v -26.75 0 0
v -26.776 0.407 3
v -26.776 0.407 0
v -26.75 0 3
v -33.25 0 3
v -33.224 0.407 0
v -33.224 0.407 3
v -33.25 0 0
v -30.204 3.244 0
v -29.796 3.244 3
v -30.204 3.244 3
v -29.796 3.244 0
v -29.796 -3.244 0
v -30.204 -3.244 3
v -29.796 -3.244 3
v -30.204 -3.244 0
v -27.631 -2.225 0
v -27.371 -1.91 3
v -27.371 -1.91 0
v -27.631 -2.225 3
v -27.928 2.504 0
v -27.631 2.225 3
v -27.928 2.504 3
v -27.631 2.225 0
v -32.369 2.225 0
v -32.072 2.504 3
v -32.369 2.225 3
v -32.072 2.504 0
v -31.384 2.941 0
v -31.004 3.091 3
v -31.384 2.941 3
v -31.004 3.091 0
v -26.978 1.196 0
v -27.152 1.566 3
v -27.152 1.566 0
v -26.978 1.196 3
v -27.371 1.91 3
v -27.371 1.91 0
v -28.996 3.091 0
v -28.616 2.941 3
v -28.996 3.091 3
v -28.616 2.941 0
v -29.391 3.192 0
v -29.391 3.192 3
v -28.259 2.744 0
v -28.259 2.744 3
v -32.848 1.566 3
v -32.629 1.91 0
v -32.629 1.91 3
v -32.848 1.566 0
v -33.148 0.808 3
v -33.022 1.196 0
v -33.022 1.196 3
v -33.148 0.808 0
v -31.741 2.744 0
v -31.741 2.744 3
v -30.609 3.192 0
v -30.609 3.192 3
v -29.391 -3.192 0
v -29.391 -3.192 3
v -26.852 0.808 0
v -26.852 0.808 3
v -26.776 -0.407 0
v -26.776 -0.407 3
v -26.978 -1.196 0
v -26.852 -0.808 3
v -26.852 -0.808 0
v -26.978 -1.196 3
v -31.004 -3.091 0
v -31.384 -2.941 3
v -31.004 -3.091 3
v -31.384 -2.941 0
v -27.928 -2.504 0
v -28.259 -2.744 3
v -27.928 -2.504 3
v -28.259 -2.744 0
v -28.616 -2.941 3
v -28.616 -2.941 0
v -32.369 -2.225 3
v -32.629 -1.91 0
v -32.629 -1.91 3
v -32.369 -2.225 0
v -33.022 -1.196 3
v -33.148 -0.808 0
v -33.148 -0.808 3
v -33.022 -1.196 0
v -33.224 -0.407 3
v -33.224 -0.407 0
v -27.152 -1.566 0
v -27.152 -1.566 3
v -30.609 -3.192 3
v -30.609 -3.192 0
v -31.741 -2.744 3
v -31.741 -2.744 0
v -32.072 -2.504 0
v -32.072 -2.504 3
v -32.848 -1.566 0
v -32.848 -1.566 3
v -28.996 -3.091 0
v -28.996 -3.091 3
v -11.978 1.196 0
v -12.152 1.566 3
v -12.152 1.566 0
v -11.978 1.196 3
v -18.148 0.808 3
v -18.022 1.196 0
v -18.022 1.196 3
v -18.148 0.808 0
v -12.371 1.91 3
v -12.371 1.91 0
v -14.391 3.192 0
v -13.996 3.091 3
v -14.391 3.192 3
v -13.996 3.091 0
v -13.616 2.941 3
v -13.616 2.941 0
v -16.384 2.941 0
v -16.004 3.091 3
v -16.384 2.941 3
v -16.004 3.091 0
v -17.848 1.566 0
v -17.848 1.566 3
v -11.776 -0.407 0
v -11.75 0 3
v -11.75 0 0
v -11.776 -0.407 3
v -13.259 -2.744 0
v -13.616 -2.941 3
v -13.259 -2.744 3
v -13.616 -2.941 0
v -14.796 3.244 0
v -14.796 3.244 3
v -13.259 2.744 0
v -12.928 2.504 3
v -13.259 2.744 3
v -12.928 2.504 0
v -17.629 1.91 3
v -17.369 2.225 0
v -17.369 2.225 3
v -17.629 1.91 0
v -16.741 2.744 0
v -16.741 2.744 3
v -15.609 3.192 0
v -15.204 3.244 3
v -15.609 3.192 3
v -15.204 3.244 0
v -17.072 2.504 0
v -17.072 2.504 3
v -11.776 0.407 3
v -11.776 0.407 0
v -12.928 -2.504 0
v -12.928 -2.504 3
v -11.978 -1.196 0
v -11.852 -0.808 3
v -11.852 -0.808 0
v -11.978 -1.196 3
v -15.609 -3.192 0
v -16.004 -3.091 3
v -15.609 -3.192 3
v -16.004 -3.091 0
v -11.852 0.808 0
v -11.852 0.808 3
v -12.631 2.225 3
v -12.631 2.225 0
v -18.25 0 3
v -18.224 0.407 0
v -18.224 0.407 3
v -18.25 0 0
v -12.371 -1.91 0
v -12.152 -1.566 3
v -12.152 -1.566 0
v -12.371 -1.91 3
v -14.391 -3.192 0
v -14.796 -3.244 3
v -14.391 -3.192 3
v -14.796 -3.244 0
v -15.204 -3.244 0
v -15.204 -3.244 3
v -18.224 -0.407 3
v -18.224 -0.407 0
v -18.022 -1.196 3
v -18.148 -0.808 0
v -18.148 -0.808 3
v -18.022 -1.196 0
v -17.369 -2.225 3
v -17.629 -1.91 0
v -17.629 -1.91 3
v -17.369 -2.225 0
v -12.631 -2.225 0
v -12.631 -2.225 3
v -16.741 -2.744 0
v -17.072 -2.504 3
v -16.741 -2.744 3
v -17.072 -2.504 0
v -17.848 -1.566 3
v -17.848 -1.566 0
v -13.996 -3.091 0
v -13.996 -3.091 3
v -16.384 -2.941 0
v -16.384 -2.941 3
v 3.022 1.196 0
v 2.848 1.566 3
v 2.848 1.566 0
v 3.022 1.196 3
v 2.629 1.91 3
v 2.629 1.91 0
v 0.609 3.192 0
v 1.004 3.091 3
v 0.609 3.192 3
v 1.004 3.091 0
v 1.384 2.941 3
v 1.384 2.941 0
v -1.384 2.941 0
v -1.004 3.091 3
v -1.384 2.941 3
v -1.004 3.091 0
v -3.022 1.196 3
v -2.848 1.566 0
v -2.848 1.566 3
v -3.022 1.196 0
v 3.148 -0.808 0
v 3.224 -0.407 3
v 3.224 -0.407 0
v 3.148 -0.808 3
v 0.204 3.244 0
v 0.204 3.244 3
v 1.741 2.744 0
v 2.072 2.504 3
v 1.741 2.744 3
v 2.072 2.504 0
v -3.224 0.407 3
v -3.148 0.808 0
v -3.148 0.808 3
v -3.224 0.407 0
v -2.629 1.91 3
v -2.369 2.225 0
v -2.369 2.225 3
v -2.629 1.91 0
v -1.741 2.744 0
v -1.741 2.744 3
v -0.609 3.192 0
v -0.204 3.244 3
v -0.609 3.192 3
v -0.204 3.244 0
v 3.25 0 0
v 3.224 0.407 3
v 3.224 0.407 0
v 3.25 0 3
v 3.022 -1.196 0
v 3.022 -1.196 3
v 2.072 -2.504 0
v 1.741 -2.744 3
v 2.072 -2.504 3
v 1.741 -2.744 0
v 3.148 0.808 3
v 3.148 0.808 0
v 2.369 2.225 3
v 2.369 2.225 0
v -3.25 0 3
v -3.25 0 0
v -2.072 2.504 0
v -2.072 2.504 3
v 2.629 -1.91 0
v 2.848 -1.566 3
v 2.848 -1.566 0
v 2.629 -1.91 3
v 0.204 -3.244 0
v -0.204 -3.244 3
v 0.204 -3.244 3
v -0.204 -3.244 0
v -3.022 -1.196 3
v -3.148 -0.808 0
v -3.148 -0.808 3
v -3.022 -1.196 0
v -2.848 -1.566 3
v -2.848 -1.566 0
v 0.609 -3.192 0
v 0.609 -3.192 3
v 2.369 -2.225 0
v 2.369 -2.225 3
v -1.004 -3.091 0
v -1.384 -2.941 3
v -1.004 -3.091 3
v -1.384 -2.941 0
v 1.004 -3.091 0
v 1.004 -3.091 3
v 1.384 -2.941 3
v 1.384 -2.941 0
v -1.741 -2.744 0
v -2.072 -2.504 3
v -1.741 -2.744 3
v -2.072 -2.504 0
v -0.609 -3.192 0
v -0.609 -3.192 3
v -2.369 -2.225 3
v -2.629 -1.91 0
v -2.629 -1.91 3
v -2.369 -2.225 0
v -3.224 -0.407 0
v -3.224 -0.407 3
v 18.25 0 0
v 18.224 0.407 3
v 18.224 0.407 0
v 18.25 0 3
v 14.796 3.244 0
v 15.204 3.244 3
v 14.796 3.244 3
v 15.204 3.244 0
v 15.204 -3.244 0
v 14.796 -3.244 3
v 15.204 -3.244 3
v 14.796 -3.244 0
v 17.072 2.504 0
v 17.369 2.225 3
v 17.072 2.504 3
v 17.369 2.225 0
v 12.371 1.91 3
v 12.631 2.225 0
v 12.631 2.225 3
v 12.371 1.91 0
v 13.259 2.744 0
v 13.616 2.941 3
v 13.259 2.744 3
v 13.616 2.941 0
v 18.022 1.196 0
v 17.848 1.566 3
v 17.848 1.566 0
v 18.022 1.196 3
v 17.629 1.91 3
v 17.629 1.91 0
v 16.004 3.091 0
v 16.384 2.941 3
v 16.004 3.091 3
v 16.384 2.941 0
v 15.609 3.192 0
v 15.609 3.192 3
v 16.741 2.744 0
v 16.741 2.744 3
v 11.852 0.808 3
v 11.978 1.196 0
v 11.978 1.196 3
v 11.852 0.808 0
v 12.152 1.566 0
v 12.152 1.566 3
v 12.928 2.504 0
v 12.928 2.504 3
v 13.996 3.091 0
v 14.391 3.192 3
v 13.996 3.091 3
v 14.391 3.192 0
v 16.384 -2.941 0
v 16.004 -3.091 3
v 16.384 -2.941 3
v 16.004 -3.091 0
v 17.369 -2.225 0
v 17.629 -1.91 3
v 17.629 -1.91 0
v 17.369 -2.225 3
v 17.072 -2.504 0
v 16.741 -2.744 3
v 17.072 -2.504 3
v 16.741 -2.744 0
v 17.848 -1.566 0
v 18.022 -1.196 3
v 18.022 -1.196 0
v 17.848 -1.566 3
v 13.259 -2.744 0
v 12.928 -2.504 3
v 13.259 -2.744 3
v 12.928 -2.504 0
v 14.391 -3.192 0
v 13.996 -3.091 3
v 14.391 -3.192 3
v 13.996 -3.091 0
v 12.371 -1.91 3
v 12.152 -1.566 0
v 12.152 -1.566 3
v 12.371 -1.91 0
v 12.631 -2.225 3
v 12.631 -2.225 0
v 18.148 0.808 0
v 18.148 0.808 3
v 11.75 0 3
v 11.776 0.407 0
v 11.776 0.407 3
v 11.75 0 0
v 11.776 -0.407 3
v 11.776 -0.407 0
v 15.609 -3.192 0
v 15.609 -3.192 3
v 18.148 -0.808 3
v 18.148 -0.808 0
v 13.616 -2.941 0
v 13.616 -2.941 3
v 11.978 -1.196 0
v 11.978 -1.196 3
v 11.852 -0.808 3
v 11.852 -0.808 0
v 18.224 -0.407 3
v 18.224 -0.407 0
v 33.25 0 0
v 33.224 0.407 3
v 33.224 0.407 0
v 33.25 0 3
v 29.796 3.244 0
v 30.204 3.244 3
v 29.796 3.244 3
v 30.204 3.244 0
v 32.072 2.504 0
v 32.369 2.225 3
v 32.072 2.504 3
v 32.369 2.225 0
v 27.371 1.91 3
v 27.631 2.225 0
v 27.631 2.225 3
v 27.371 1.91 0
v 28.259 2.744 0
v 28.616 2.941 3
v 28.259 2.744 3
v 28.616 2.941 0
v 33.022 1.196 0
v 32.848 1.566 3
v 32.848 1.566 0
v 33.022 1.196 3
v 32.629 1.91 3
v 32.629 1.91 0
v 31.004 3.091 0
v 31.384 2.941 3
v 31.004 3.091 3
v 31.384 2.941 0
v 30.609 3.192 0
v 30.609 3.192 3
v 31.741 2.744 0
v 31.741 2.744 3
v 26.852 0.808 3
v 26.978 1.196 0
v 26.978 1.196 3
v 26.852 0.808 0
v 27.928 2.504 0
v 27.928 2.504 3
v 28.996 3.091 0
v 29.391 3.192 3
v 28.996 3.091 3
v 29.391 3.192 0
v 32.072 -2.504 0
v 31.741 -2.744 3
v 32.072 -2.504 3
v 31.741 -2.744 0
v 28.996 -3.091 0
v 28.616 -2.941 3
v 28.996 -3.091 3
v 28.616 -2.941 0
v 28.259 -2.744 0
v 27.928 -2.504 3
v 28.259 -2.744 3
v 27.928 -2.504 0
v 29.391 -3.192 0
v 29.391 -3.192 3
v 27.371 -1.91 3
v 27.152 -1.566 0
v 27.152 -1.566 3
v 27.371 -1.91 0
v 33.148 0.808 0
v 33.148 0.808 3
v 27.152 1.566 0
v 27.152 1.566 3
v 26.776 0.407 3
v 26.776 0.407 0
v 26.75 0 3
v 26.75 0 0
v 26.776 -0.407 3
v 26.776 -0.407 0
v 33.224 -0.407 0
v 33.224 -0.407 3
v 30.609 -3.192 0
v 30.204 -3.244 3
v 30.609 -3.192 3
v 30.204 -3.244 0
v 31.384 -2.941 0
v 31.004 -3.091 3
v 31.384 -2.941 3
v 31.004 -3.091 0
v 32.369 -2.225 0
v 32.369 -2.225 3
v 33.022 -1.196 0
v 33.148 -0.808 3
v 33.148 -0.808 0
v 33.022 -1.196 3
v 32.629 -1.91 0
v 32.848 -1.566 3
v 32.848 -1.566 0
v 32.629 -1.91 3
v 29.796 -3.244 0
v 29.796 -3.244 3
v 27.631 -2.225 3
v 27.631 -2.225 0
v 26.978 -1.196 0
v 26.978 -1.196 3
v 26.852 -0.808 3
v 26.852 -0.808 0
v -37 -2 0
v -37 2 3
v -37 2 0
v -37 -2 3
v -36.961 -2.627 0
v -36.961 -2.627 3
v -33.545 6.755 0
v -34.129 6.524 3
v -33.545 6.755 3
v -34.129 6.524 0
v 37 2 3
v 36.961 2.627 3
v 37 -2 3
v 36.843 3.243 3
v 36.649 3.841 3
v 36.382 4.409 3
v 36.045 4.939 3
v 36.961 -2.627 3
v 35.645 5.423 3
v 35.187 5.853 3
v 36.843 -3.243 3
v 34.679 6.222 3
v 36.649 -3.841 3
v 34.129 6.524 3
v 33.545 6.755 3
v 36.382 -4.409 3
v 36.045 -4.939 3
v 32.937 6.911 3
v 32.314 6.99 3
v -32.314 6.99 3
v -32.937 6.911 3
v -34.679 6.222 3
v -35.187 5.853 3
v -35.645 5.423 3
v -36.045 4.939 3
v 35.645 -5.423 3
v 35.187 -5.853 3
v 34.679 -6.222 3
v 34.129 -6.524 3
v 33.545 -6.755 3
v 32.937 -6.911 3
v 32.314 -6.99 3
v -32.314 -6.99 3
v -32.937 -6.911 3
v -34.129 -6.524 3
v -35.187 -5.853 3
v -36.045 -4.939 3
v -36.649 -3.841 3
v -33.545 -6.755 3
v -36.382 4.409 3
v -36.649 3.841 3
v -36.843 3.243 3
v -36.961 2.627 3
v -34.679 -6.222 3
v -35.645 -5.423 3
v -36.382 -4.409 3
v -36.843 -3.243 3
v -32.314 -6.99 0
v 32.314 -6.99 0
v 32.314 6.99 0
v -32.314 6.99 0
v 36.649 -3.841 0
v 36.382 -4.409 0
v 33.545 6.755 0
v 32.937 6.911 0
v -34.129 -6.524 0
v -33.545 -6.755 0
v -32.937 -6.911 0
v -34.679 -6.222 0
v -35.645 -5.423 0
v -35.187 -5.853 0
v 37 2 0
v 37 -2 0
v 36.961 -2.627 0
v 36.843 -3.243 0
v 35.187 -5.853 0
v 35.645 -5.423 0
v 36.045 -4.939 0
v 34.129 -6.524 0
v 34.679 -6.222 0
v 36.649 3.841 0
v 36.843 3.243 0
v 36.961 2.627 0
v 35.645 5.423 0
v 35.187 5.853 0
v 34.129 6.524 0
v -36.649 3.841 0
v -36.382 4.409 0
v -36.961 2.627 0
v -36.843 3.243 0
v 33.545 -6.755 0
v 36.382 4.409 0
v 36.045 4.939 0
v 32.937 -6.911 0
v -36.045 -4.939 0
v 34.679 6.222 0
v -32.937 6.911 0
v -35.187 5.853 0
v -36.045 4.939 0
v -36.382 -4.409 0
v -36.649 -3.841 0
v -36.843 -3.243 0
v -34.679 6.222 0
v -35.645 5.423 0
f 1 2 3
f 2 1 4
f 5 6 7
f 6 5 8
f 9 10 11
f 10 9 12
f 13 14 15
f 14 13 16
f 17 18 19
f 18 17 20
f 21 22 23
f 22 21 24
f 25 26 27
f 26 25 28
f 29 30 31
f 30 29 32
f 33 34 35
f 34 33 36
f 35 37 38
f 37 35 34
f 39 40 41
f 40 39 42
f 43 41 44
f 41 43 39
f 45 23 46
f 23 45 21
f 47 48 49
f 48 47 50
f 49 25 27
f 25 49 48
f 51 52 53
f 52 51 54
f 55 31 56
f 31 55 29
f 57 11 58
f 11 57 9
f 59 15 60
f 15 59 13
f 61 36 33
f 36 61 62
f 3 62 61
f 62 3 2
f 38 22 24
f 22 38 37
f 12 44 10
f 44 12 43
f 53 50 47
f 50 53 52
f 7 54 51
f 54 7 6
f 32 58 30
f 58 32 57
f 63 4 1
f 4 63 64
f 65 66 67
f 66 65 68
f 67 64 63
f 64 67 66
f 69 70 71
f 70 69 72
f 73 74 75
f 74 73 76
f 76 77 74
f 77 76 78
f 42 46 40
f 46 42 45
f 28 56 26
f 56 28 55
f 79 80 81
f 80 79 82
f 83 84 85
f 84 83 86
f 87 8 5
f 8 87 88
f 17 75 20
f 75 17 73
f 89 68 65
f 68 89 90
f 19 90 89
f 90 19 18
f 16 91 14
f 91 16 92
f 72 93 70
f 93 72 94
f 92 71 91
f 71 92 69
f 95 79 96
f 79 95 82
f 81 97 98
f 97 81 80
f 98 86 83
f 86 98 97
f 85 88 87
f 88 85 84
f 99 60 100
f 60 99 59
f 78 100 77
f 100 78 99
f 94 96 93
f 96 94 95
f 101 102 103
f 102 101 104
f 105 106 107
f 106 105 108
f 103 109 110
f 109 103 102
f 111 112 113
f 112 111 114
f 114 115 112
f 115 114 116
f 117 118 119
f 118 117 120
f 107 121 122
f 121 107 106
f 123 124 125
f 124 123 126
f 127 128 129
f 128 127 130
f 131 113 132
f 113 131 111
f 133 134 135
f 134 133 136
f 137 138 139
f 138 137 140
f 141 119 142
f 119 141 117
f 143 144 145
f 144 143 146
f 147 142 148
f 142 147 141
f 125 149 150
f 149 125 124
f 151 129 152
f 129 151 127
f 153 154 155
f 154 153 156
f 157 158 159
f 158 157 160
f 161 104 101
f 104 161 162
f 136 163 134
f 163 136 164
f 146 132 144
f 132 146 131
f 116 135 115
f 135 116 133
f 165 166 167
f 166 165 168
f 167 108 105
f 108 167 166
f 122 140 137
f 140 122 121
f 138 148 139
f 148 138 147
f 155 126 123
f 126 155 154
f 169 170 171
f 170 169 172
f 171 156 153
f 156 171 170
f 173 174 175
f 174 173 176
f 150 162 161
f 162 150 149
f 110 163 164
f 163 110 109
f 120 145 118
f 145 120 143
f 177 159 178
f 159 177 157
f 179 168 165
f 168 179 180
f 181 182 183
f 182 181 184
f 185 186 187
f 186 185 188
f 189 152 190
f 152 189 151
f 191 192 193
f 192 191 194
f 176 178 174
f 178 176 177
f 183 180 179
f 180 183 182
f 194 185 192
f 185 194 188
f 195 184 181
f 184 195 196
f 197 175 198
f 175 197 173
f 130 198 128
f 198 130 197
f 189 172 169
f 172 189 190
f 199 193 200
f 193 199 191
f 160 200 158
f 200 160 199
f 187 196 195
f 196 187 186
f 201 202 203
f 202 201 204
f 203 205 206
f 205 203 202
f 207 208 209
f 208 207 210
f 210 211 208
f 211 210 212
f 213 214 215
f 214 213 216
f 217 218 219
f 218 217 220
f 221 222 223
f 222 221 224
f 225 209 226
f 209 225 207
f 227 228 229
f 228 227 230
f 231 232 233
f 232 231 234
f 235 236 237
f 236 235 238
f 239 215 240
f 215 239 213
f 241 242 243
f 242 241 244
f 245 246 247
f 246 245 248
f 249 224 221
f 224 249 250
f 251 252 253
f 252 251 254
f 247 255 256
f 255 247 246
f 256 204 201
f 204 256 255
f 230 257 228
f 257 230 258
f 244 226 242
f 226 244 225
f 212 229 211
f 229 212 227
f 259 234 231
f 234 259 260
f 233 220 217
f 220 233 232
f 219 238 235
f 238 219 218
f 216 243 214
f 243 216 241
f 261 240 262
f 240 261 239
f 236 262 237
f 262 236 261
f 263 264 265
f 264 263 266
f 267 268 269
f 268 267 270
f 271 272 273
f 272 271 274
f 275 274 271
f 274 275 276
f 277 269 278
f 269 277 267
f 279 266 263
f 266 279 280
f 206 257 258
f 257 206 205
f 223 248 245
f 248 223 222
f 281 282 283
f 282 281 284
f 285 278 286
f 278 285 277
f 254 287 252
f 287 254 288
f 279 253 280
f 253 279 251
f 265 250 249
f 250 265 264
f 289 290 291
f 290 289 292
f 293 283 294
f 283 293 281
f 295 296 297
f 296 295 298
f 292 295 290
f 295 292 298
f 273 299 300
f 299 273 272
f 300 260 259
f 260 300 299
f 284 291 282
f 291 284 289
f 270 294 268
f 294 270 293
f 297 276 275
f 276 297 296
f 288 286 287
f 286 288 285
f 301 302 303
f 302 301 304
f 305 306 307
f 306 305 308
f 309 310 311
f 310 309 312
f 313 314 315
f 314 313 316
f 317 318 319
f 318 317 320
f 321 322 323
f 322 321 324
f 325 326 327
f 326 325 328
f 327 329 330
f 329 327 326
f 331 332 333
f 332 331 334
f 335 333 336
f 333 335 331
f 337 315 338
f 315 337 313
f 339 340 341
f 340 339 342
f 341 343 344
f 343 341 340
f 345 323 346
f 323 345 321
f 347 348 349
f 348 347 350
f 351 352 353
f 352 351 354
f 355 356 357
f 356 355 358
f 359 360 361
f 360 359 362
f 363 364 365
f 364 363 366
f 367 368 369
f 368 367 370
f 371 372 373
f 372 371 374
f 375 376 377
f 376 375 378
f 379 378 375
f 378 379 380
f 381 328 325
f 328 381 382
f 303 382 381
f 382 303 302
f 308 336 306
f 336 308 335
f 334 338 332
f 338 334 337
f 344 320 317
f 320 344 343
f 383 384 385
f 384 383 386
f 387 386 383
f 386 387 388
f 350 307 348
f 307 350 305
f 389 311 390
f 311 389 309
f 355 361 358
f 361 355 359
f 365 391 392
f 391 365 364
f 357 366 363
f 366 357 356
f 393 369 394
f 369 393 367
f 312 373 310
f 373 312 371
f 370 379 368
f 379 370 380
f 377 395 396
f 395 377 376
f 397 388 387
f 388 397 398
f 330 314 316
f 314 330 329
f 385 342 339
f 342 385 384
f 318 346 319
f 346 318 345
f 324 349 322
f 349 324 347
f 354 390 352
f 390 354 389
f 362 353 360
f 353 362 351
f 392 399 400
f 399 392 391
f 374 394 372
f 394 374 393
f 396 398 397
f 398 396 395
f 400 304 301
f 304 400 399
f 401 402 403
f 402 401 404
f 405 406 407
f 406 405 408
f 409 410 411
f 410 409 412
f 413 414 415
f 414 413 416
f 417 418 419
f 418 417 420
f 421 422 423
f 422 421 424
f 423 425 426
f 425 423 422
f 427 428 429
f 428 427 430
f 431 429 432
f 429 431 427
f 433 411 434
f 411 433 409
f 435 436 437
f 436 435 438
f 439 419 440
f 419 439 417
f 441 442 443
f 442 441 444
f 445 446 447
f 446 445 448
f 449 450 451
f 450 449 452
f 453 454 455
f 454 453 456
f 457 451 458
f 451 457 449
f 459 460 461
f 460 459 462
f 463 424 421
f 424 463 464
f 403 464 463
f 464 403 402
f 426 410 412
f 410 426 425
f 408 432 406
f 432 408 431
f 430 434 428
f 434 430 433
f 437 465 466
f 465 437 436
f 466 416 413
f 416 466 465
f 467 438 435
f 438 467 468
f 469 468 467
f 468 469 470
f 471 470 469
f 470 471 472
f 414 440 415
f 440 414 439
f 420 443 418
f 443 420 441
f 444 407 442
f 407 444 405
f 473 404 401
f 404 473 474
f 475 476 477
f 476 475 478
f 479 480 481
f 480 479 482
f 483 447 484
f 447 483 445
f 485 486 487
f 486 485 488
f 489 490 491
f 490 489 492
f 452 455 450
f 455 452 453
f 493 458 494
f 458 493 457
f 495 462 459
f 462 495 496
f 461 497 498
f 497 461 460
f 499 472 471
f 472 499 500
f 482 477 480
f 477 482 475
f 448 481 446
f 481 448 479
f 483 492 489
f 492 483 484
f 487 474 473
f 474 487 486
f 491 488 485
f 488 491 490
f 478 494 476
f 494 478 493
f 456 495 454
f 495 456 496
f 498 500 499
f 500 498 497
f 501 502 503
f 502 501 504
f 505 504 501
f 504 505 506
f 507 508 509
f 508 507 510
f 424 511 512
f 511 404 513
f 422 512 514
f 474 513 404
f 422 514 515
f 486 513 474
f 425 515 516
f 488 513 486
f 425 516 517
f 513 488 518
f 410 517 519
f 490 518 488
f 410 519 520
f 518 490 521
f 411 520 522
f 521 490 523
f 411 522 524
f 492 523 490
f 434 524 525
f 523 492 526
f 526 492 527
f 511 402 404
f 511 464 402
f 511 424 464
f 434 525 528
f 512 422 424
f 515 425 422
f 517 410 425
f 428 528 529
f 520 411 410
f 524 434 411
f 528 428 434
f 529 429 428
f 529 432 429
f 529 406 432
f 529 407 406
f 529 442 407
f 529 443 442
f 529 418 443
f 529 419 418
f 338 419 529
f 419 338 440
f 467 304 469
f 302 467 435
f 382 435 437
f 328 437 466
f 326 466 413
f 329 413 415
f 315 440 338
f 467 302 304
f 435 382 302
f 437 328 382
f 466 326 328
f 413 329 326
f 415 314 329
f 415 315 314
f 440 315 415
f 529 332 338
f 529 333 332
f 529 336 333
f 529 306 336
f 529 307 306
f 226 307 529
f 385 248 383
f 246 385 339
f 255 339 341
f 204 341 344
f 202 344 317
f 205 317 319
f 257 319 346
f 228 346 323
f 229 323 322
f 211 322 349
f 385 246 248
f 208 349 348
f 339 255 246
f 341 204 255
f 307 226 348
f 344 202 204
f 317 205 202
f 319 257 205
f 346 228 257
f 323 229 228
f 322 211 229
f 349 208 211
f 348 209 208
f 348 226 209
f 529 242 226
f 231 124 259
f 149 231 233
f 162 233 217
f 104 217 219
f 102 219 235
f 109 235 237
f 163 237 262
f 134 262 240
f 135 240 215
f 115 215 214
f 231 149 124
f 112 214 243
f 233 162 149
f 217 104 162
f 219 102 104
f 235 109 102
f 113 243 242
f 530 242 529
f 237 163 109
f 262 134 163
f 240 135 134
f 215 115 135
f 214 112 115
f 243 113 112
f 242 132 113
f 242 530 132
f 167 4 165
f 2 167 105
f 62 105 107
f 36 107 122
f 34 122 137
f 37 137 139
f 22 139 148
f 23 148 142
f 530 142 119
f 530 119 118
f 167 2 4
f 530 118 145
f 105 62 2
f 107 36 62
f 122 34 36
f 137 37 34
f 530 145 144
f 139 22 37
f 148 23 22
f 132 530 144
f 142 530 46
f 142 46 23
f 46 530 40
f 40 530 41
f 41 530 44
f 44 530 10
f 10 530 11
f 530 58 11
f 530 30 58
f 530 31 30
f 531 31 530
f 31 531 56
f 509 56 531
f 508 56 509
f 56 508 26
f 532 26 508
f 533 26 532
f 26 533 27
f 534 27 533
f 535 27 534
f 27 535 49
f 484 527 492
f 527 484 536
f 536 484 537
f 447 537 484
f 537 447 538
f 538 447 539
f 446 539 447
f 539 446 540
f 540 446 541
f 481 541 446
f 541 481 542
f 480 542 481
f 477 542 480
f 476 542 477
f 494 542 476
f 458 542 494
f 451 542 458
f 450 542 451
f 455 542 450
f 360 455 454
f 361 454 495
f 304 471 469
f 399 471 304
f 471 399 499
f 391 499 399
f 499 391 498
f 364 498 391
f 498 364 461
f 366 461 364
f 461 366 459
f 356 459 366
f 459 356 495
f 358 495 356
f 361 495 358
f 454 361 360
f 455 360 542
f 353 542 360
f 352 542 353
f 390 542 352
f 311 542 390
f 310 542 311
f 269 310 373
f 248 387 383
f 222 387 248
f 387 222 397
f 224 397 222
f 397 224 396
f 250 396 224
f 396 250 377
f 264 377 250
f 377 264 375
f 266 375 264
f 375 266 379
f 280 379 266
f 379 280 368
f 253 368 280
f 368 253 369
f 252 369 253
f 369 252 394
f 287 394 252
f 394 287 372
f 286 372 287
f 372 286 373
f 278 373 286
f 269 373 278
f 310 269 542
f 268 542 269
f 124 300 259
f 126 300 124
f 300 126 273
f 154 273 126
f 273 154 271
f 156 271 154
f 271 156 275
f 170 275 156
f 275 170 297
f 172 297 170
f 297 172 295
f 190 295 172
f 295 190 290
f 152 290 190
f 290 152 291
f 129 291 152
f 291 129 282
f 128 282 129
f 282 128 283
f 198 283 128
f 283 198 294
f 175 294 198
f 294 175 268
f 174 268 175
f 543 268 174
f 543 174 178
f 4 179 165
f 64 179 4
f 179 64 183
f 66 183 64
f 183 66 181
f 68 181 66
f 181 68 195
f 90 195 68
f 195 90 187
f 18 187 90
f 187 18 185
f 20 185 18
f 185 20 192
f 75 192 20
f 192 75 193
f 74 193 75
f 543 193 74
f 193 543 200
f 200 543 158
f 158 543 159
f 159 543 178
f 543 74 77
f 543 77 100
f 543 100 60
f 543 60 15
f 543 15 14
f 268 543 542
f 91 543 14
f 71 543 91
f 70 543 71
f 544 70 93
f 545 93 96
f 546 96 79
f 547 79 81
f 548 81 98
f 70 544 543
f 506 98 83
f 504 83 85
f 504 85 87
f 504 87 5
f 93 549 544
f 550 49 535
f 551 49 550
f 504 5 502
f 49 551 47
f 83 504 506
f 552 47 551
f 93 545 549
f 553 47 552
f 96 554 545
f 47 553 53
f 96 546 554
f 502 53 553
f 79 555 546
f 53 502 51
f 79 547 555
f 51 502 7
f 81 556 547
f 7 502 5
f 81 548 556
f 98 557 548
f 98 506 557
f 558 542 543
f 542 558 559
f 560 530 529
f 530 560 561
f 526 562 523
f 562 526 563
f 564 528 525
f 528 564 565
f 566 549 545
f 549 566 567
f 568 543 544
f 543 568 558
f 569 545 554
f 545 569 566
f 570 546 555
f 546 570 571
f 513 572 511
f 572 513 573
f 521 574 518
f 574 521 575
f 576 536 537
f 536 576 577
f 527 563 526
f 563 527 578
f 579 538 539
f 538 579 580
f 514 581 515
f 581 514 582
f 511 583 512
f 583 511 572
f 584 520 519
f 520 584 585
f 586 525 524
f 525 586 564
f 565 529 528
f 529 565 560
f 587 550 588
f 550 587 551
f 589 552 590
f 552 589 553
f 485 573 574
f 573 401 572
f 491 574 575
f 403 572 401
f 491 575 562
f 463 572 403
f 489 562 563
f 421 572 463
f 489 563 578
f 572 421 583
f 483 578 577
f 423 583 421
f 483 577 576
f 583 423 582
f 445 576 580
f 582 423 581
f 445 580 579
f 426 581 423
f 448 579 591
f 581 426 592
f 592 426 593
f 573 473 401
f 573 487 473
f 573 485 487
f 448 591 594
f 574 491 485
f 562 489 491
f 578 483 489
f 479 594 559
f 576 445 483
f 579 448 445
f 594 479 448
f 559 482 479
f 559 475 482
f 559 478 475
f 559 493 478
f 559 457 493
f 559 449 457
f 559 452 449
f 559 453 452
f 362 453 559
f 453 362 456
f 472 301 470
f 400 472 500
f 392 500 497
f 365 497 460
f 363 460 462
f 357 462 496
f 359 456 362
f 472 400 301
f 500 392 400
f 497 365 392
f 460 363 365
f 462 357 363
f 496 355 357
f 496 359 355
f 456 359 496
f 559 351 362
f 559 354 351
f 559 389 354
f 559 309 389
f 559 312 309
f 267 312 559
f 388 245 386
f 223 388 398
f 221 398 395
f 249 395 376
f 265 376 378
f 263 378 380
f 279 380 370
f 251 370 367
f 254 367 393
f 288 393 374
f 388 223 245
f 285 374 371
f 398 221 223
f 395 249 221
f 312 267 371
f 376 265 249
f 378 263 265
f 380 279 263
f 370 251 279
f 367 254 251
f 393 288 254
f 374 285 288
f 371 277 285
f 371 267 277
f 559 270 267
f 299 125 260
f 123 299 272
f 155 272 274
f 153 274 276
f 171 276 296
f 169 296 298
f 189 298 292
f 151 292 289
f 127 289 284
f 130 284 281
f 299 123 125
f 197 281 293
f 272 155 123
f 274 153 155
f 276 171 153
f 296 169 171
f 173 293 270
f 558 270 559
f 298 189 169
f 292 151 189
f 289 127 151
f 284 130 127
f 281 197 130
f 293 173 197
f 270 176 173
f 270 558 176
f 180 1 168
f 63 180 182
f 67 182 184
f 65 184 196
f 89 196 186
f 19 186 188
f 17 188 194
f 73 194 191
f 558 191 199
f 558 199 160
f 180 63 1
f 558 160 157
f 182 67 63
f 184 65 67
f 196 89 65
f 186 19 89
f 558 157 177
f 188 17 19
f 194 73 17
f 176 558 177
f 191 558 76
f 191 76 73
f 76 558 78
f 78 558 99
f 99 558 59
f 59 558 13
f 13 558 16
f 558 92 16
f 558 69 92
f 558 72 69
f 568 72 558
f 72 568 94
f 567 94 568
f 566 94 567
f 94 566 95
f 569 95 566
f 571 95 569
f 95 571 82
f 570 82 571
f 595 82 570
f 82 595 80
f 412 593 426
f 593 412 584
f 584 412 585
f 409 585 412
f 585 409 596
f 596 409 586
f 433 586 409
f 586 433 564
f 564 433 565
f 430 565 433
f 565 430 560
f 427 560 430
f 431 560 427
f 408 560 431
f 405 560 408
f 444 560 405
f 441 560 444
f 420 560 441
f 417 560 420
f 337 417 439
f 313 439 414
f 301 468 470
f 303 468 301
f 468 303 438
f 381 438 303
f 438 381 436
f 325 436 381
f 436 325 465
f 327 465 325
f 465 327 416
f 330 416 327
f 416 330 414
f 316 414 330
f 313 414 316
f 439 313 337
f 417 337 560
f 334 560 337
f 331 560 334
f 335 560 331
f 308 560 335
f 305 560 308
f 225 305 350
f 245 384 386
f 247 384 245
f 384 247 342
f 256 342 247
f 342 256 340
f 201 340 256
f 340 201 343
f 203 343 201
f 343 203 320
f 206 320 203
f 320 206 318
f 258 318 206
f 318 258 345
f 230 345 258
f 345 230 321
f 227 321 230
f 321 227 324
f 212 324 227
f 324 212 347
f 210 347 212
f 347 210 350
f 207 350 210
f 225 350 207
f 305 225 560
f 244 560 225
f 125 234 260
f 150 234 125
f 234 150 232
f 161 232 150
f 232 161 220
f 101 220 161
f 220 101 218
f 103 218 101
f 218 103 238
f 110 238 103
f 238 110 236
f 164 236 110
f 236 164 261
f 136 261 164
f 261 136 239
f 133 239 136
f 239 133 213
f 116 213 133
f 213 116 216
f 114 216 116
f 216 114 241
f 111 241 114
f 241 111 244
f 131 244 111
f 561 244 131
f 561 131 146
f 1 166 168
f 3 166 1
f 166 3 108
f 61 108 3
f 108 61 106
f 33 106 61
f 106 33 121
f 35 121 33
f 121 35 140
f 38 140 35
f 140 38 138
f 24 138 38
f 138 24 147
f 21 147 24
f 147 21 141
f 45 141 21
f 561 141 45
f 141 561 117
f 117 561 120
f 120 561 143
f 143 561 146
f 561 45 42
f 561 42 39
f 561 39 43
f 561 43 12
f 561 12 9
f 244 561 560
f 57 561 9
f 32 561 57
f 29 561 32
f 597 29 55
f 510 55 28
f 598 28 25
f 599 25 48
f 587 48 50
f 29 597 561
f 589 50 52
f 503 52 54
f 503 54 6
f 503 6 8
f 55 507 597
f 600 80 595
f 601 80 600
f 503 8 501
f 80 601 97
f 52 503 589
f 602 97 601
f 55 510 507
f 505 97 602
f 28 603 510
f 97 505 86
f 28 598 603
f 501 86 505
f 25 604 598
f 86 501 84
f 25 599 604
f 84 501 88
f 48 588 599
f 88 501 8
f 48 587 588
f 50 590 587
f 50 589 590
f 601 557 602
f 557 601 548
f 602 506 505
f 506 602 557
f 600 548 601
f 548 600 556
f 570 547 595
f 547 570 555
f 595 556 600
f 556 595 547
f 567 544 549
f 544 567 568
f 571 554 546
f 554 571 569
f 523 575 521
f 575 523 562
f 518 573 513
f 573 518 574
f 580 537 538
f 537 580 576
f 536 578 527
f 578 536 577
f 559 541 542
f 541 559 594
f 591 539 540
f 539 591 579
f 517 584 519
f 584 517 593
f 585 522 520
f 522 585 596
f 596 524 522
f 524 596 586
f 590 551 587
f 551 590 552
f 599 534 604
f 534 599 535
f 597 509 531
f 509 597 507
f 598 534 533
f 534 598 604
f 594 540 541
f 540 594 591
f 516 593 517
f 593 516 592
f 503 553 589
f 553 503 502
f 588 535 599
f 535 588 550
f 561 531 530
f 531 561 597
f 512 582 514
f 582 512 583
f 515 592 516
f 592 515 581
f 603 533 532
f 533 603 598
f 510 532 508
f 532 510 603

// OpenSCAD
// Generated by SolidPython 1.1.3 on 2023-03-12 22:01:55
$fn = 50;


difference() {
	union() {
		translate(v = [0, 0, 0]) {
			rotate(a = [0, 0, 0]) {
				hull() {
					translate(v = [-32.0000000000, 2.0000000000, 0]) {
						rotate(a = [0, 0, 0]) {
							translate(v = [0, 0, 0]) {
								rotate(a = [0, 0, 0]) {
									cylinder(h = 3, r = 5);
								}
							}
						}
					}
					translate(v = [32.0000000000, 2.0000000000, 0]) {
						rotate(a = [0, 0, 0]) {
							translate(v = [0, 0, 0]) {
								rotate(a = [0, 0, 0]) {
									cylinder(h = 3, r = 5);
								}
							}
						}
					}
					translate(v = [-32.0000000000, -2.0000000000, 0]) {
						rotate(a = [0, 0, 0]) {
							translate(v = [0, 0, 0]) {
								rotate(a = [0, 0, 0]) {
									cylinder(h = 3, r = 5);
								}
							}
						}
					}
					translate(v = [32.0000000000, -2.0000000000, 0]) {
						rotate(a = [0, 0, 0]) {
							translate(v = [0, 0, 0]) {
								rotate(a = [0, 0, 0]) {
									cylinder(h = 3, r = 5);
								}
							}
						}
					}
				}
			}
		}
	}
	union() {
		translate(v = [-30.0000000000, 0.0000000000, 0]) {
			rotate(a = [0, 0, 0]) {
				translate(v = [0, 0, -50]) {
					rotate(a = [0, 0, 0]) {
						cylinder(h = 100, r = 3.2500000000);
					}
				}
			}
		}
		translate(v = [-15.0000000000, 0.0000000000, 0]) {
			rotate(a = [0, 0, 0]) {
				translate(v = [0, 0, -50]) {
					rotate(a = [0, 0, 0]) {
						cylinder(h = 100, r = 3.2500000000);
					}
				}
			}
		}
		translate(v = [0.0000000000, 0.0000000000, 0]) {
			rotate(a = [0, 0, 0]) {
				translate(v = [0, 0, -50]) {
					rotate(a = [0, 0, 0]) {
						cylinder(h = 100, r = 3.2500000000);
					}
				}
			}
		}
		translate(v = [15.0000000000, 0.0000000000, 0]) {
			rotate(a = [0, 0, 0]) {
				translate(v = [0, 0, -50]) {
					rotate(a = [0, 0, 0]) {
						cylinder(h = 100, r = 3.2500000000);
					}
				}
			}
		}
		translate(v = [30.0000000000, 0.0000000000, 0]) {
			rotate(a = [0, 0, 0]) {
				translate(v = [0, 0, -50]) {
					rotate(a = [0, 0, 0]) {
						cylinder(h = 100, r = 3.2500000000);
					}
				}
			}
		}
	}
}
/***********************************************
*********      SolidPython code:      **********
************************************************
 
from solid import *
import os
import subprocess

import oomB

import opsc_library_gen

mode = "laser"
#mode = "3d_print"

defined_objects = {}

radius_dict = {}
countersunk_dict = {}


def set_mode(m):
    global mode
    mode = m
    radius_dict['M6'] = 6.5/2
    radius_dict['M3'] = 3.3/2
    if mode == "laser":
        radius_dict['M6'] = 6/2
        radius_dict['M3'] = 3/2

    countersunk_dict['M3'] = {}
    countersunk_dict['M3']['little_rad'] = radius_dict['M3']
    countersunk_dict['M3']['big_rad'] = (5.5+0.6)/2
    if mode == "laser":
        countersunk_dict['M3']['big_rad'] = (4.75+0.6)/2
        countersunk_dict['M3']['little_rad'] = (4.75+0.6)/2

    countersunk_dict['M3']['height'] = 1.7


def opsc_make_object(filename, objects, save_type="none",resolution=50, layers = 1, tilediff = 200, mode="laser", overwrite=True):
    if overwrite or not os.path.exists(filename):
        set_mode(mode)
        save_type = save_type.lower()
        os.makedirs(os.path.dirname(filename), exist_ok=True)
        final_object = opsc_get_object(objects, mode = mode)
        # Save the final object to the specified filename    
        scad_render_to_file(final_object, filename, file_header='$fn = %s;' % resolution, include_orig_code=True)
        if mode == "laser":
            filename_laser = filename.replace(".scad","-flat.scad")
            scad_render_to_file(getLaser(final_object, layers=layers, tilediff=tilediff), filename_laser, file_header='$fn = %s;' % resolution, include_orig_code=True)
            if save_type == "all":
                saveToAll(filename_laser)
            elif save_type == "dxf":
                saveToDxf(filename_laser)
        if save_type == "all":
            saveToAll(filename)
        elif save_type == "dxf":
            saveToDxf(filename)


def opsc_get_object(objects, mode = "laser"):
    # Create the solidpython objects only include the positive objects and if they don't have inclusion or their inclusion is either all or mode
    # Initialize an empty list to store the results
    positive_objects = []

    # Iterate over the "objects" list
    for obj in objects:
        # Check if the current object has a "type" key with a value of "positive"
        if obj['type'] == 'positive':
            # Check if the current object has an "inclusion" key and its value matches "mode",
            # or if the current object does not have an "inclusion" key at all
            if not 'inclusion' in obj or obj['inclusion'] == "all" or obj['inclusion'] == mode:
                # Call the "get_opsc_item" function with the current object as an argument
                opsc_item = get_opsc_item(obj)
                # Add the result to the "positive_objects" list
                positive_objects.append(opsc_item)
# Initialize an empty list to store the results
    negative_objects = []

    # Iterate over the "objects" list
    for obj in objects:
        # Check if the current object has a "type" key with a value of "negative"
        if obj['type'] == 'negative':
            # Check if the current object has an "inclusion" key and its value matches "mode",
            # or if the current object does not have an "inclusion" key at all
            if not 'inclusion' in obj or obj['inclusion'] == "all" or obj['inclusion'] == mode:
                # Call the "get_opsc_item" function with the current object as an argument
                opsc_item = get_opsc_item(obj)
                # Add the result to the "negative_objects" list
                negative_objects.append(opsc_item)
    
    #positive_objects = [get_opsc_item(obj) for obj in objects if obj['type'] == 'positive']
    #negative_objects = [get_opsc_item(obj) for obj in objects if obj['type'] == 'negative']
    # Union the positive objects
    positive_object = union()(*positive_objects)
    # Union the negative objects
    negative_object = union()(*negative_objects)
    # Create the final object by subtracting the negative objects from the positive objects
    return difference()(positive_object, negative_object)

def get_opsc_item(params):
    # A dictionary to map radius string values to numerical values
    #radius_dict = {'small': 5, 'medium': 10, 'large': 15}
    # An array of function names for basic shapes
    basic_shapes = ['cube', 'sphere', 'cylinder']
    
    # An array of function names for other shapes
    other_shapes = ['hole', 'slot', 'rounded_rectangle', 'countersunk']
    


    # Convert radius to r if present, and remove radius from the params dictionary
    if 'radius' in params:
        if isinstance(params['radius'], str):
            # Use the radius_dict to map the radius string value to a numerical value
            params['r'] = radius_dict[params['radius']]
        else:
            params['r'] = params['radius']
        del params['radius']
    

    # Check if the object type is a basic shape
    if params['shape'] in basic_shapes:
        # Remove shape and unexpected dictionary values
        allowed_keys = {'size', 'r', 'r1', 'r2', 'd', 'h', 'rw', 'rh', 'dw', 'dh'}
        shape_params = {k: v for k, v in params.items() if k in allowed_keys}

        # Call the corresponding function for the shape parameter, using ** notation to pass the shape_params dictionary as keyword arguments
        return get_opsc_transform(params,globals()[params['shape']](**shape_params))
    
    # If the object type is not a basic shape, check if it's a defined object or one of the other shapes
    elif params['shape'] in other_shapes:
        # Call the corresponding function for the shape parameter, passing the params dictionary as an argument
        p2 = copy.deepcopy(params)
        p2["pos"] = [0,0,0]
        return get_opsc_transform(params,globals()[params['shape']](p2))
    
    # If the object is not a basic shape or a defined object, try to import it from a .scad file
    else:
        obj = defined_objects[params['shape']]
        return get_opsc_transform(params,obj)

def get_opsc_transform(params, solid_obj):
    # Rotate the object based on the 'rot' field in the params dictionary, or the 'rotX', 'rotY', and 'rotZ' fields if 'rot' is not present
    rot = params.get('rot', [])
    if rot:
        rotX, rotY, rotZ = rot
    else:
        rotX = params.get('rotX', 0)
        rotY = params.get('rotY', 0)
        rotZ = params.get('rotZ', 0)
    solid_obj = rotate([rotX, rotY, rotZ])(solid_obj)

    # Translate the object based on the 'pos' field in the params dictionary, or the 'x', 'y', and 'z' fields if 'pos' is not present
    pos = params.get('pos', [])
    if pos:
        x, y, z = pos
    else:
        x = params.get('x', 0)
        y = params.get('y', 0)
        z = params.get('z', 0)
    solid_obj = translate([x, y, z])(solid_obj)
    return solid_obj


import random

def opsc_easy_array(type, shape, repeats, pos_start, shift_arr, **kwargs):
    for i in range(0,3):
        repeats.append(1)
        pos_start.append(0)
        shift_arr.append(0)
    return_objects = []

    for x in range(0,repeats[0]):
        for y in range(0,repeats[1]):
            for z in range(0,repeats[2]):
                return_objects.append(opsc_easy(type, shape, pos=[pos_start[0]+x*shift_arr[0],pos_start[1]+y*shift_arr[1],pos_start[2]+z*shift_arr[2]], **kwargs))
    return return_objects                



def opsc_easy(type, shape, **kwargs):
    obj = {
        'type': type,
        'shape': shape
    }
    for param in ['size', 'r', 'r1', 'r2', 'd', 'h', 'rw', 'rh', 'dw', 'dh', 'pos', 'x', 'y', 'z', 'rot', 'rotX', 'rotY', 'rotZ', "w", "inclusion"]:
        if param in kwargs:
            obj[param] = kwargs[param]
    return obj

def hole(params):
    p2 = copy.deepcopy(params)  
    # Check if the radius is a string and replace it with the corresponding value from the dictionary
    if isinstance(p2['r'], str):
        p2['r'] = radius_dict[p2['r']]
    
    # Set the height to 100 if not specified
    if 'h' not in p2:
        p2['h'] = 100
        p2["pos"] = [0,0,-50]
    p2["center"] = True
    # Create the cylinder object
    p2["shape"] = "cylinder"
    p2["type"] = "positive"

    return get_opsc_item(p2)

import copy

def countersunk(params):
    p2 = copy.deepcopy(params)
    counter_rad = p2['r']
    p2['r'] = radius_dict[p2['r']]
    hp = copy.deepcopy(p2)
    hp["type"] = "positive"
    hp["shape"] = "hole"
    del hp["rot"]
    hol = get_opsc_item(hp)
    
    cp = copy.deepcopy(p2)
    cp["h"] = countersunk_dict[counter_rad]["height"]
    cp["r2"] = countersunk_dict[counter_rad]["little_rad"]
    cp["r1"] = countersunk_dict[counter_rad]["big_rad"]
    del cp["r"]
    del cp["rot"]
    cp["type"] = "positive"
    cp["shape"] = "cylinder"
    cp["pos"] = [0,0,0]

    top = get_opsc_item(cp)
    return union()(hol,top)



def slot(params):  
    p2 = copy.deepcopy(params) 
    if isinstance(p2['r'], str):
        p2['r'] = radius_dict[p2['r']]
    p2["type"] = "positive"
    p2["shape"] = "hole"
    del p2["rot"]
    p2["pos"] = [0,0,0]
    left = copy.deepcopy(p2)
    right = copy.deepcopy(p2)
    left["pos"][0] = p2["w"] / 2 - p2["r"] 
    
    right["pos"][0] = -p2["w"] / 2 + p2["r"] 
    pass
    leftObj = get_opsc_item(left)
    rightObj = get_opsc_item(right)
    return hull()(leftObj, rightObj)

def rounded_rectangle(params):   
    p2 = copy.deepcopy(params) 
    p2["h"] = p2["size"][2]
    p2["pos"] = p2.get("pos", [0, 0, 0]) 
    p2["type"] = "positive"
    p2["shape"] = "hole"
    p2["pos"] = [0,0,0]
    
    if 'rot' in p2:
        del p2["rot"]   
    if 'r' not in p2:
        p2["r"] = 5 
    tl = copy.deepcopy(p2)
    tr = copy.deepcopy(p2)
    bl = copy.deepcopy(p2)
    br = copy.deepcopy(p2)
    tl["pos"][0] = -(p2["size"][0] - p2["r"]*2)/2
    tl["pos"][1] = (p2["size"][1] - p2["r"]*2)/2
    tr["pos"][0] = (p2["size"][0] - p2["r"]*2)/2
    tr["pos"][1] = (p2["size"][1] - p2["r"]*2)/2
    bl["pos"][0] = -(p2["size"][0] - p2["r"]*2)/2
    bl["pos"][1] = -(p2["size"][1] - p2["r"]*2)/2
    br["pos"][0] = (p2["size"][0] - p2["r"]*2)/2
    br["pos"][1] = -(p2["size"][1] - p2["r"]*2)/2
    del tl["size"]
    del tr["size"]
    del bl["size"]
    del br["size"]
    tlo = get_opsc_item(tl)
    tro = get_opsc_item(tr)
    blo = get_opsc_item(bl)
    bro = get_opsc_item(br)    
    return hull()(tlo, tro, blo, bro)



def import_scad_object(filename):
    # Import the .scad file and convert it to a solidpython object
    #filename = "parts"
    obj = import_scad(filename)
    return obj.main()
    


import os
import solid as solidpython

# A dictionary to store the defined objects


def load_scad_objects():
    opsc_library_gen.gen_library(defined_objects)

import random

def test(num_objects):
    objects = []
    for i in range(num_objects):
        # Choose a random shape
        #shape = random.choice(['cube', 'sphere', 'cylinder', 'hole', 'slot', "rounded_rectangle"])
        shape = random.choice(["rounded_rectangle"])

        # Choose a random type
        type = random.choice(['positive', 'negative'])
        
        # Create an empty object dictionary
        obj = {'shape': shape, 'type': type}
        
        # Set shape-specific parameters
        if obj['shape'] in ['cube']:
            obj['size'] =  [random.uniform(5, 15), random.uniform(5, 15), random.uniform(5, 15)]
        if obj['shape'] in ['rounded_rectangle']:
            obj['size'] =  [random.uniform(5, 15), random.uniform(5, 15), random.uniform(5, 15)]
            obj['r'] = random.uniform(0.5, 5)
        elif obj['shape'] == 'sphere':
            obj['r'] = random.uniform(5, 15)
        elif obj['shape'] in ['cylinder', 'hole']:
            obj['r'] = random.uniform(0.5, 5)
            obj['h'] = random.uniform(5, 15)
        elif obj['shape'] == 'slot':
            obj['r'] = random.uniform(0.5, 5)
            obj['h'] = random.uniform(5, 15)
            obj['w'] = random.uniform(5, 15)
        
        # Set a random position and rotation
        obj['pos'] = [random.uniform(-20, 20), random.uniform(-20, 20), random.uniform(-20, 20)]
        obj['rot'] = [random.uniform(-180, 180), random.uniform(-180, 180), random.uniform(-180, 180)]
        
        # Add the object to the list
        objects.append(obj)
    return objects

####### old file saving
def saveToAll(fileIn):
    saveToDxf(fileIn)
    saveToPng(fileIn)
    saveToStl(fileIn)
    saveToSvg(fileIn)

def saveToDxf(fileIn, fileOut="", copy_to_laser=True):
    if fileOut == "":
        fileOut = fileIn.replace(".scad",".dxf")
    saveToFile(fileIn, fileOut)


    
def saveToPng(fileIn, fileOut="",extra="--render"):
    if fileOut == "":
        fileOut = fileIn.replace(".scad",".png")
    saveToFile(fileIn, fileOut)

def saveToStl(fileIn, fileOut=""):
    if fileOut == "":
        fileOut = fileIn.replace(".scad",".stl")
    saveToFile(fileIn, fileOut)
    
def saveToSvg(fileIn, fileOut=""):
    if fileOut == "":
        fileOut = fileIn.replace(".scad",".svg")
    saveToFile(fileIn, fileOut)

def saveToFile(fileIn, fileOut,extra=""):
    #extra = extra + " --colorscheme Tomorrow"

    launchStr = 'openscad -o "' + fileOut + '"' + extra + ' "' + fileIn + '"'
    if ".png" in fileOut:
        launchStr = launchStr + " --render"
    print("            saveToFile launch string: " + launchStr)
    subprocess.run(launchStr)
    x=0

def getLaser(final_object,start=1.5,layers=1,thickness=3,tilediff=200):
        rv= []

        for x in range(layers):
            rv.append(translate([0,x*tilediff,0])(
                    projection()(
                        intersection()(translate([-500,-500,start+x*thickness])(cube(size=[1000,1000,0.1])),
                            final_object
                        )
                    )
            )
            )
            
        return union()(rv)

set_mode("laser")
load_scad_objects() 
 
************************************************/
